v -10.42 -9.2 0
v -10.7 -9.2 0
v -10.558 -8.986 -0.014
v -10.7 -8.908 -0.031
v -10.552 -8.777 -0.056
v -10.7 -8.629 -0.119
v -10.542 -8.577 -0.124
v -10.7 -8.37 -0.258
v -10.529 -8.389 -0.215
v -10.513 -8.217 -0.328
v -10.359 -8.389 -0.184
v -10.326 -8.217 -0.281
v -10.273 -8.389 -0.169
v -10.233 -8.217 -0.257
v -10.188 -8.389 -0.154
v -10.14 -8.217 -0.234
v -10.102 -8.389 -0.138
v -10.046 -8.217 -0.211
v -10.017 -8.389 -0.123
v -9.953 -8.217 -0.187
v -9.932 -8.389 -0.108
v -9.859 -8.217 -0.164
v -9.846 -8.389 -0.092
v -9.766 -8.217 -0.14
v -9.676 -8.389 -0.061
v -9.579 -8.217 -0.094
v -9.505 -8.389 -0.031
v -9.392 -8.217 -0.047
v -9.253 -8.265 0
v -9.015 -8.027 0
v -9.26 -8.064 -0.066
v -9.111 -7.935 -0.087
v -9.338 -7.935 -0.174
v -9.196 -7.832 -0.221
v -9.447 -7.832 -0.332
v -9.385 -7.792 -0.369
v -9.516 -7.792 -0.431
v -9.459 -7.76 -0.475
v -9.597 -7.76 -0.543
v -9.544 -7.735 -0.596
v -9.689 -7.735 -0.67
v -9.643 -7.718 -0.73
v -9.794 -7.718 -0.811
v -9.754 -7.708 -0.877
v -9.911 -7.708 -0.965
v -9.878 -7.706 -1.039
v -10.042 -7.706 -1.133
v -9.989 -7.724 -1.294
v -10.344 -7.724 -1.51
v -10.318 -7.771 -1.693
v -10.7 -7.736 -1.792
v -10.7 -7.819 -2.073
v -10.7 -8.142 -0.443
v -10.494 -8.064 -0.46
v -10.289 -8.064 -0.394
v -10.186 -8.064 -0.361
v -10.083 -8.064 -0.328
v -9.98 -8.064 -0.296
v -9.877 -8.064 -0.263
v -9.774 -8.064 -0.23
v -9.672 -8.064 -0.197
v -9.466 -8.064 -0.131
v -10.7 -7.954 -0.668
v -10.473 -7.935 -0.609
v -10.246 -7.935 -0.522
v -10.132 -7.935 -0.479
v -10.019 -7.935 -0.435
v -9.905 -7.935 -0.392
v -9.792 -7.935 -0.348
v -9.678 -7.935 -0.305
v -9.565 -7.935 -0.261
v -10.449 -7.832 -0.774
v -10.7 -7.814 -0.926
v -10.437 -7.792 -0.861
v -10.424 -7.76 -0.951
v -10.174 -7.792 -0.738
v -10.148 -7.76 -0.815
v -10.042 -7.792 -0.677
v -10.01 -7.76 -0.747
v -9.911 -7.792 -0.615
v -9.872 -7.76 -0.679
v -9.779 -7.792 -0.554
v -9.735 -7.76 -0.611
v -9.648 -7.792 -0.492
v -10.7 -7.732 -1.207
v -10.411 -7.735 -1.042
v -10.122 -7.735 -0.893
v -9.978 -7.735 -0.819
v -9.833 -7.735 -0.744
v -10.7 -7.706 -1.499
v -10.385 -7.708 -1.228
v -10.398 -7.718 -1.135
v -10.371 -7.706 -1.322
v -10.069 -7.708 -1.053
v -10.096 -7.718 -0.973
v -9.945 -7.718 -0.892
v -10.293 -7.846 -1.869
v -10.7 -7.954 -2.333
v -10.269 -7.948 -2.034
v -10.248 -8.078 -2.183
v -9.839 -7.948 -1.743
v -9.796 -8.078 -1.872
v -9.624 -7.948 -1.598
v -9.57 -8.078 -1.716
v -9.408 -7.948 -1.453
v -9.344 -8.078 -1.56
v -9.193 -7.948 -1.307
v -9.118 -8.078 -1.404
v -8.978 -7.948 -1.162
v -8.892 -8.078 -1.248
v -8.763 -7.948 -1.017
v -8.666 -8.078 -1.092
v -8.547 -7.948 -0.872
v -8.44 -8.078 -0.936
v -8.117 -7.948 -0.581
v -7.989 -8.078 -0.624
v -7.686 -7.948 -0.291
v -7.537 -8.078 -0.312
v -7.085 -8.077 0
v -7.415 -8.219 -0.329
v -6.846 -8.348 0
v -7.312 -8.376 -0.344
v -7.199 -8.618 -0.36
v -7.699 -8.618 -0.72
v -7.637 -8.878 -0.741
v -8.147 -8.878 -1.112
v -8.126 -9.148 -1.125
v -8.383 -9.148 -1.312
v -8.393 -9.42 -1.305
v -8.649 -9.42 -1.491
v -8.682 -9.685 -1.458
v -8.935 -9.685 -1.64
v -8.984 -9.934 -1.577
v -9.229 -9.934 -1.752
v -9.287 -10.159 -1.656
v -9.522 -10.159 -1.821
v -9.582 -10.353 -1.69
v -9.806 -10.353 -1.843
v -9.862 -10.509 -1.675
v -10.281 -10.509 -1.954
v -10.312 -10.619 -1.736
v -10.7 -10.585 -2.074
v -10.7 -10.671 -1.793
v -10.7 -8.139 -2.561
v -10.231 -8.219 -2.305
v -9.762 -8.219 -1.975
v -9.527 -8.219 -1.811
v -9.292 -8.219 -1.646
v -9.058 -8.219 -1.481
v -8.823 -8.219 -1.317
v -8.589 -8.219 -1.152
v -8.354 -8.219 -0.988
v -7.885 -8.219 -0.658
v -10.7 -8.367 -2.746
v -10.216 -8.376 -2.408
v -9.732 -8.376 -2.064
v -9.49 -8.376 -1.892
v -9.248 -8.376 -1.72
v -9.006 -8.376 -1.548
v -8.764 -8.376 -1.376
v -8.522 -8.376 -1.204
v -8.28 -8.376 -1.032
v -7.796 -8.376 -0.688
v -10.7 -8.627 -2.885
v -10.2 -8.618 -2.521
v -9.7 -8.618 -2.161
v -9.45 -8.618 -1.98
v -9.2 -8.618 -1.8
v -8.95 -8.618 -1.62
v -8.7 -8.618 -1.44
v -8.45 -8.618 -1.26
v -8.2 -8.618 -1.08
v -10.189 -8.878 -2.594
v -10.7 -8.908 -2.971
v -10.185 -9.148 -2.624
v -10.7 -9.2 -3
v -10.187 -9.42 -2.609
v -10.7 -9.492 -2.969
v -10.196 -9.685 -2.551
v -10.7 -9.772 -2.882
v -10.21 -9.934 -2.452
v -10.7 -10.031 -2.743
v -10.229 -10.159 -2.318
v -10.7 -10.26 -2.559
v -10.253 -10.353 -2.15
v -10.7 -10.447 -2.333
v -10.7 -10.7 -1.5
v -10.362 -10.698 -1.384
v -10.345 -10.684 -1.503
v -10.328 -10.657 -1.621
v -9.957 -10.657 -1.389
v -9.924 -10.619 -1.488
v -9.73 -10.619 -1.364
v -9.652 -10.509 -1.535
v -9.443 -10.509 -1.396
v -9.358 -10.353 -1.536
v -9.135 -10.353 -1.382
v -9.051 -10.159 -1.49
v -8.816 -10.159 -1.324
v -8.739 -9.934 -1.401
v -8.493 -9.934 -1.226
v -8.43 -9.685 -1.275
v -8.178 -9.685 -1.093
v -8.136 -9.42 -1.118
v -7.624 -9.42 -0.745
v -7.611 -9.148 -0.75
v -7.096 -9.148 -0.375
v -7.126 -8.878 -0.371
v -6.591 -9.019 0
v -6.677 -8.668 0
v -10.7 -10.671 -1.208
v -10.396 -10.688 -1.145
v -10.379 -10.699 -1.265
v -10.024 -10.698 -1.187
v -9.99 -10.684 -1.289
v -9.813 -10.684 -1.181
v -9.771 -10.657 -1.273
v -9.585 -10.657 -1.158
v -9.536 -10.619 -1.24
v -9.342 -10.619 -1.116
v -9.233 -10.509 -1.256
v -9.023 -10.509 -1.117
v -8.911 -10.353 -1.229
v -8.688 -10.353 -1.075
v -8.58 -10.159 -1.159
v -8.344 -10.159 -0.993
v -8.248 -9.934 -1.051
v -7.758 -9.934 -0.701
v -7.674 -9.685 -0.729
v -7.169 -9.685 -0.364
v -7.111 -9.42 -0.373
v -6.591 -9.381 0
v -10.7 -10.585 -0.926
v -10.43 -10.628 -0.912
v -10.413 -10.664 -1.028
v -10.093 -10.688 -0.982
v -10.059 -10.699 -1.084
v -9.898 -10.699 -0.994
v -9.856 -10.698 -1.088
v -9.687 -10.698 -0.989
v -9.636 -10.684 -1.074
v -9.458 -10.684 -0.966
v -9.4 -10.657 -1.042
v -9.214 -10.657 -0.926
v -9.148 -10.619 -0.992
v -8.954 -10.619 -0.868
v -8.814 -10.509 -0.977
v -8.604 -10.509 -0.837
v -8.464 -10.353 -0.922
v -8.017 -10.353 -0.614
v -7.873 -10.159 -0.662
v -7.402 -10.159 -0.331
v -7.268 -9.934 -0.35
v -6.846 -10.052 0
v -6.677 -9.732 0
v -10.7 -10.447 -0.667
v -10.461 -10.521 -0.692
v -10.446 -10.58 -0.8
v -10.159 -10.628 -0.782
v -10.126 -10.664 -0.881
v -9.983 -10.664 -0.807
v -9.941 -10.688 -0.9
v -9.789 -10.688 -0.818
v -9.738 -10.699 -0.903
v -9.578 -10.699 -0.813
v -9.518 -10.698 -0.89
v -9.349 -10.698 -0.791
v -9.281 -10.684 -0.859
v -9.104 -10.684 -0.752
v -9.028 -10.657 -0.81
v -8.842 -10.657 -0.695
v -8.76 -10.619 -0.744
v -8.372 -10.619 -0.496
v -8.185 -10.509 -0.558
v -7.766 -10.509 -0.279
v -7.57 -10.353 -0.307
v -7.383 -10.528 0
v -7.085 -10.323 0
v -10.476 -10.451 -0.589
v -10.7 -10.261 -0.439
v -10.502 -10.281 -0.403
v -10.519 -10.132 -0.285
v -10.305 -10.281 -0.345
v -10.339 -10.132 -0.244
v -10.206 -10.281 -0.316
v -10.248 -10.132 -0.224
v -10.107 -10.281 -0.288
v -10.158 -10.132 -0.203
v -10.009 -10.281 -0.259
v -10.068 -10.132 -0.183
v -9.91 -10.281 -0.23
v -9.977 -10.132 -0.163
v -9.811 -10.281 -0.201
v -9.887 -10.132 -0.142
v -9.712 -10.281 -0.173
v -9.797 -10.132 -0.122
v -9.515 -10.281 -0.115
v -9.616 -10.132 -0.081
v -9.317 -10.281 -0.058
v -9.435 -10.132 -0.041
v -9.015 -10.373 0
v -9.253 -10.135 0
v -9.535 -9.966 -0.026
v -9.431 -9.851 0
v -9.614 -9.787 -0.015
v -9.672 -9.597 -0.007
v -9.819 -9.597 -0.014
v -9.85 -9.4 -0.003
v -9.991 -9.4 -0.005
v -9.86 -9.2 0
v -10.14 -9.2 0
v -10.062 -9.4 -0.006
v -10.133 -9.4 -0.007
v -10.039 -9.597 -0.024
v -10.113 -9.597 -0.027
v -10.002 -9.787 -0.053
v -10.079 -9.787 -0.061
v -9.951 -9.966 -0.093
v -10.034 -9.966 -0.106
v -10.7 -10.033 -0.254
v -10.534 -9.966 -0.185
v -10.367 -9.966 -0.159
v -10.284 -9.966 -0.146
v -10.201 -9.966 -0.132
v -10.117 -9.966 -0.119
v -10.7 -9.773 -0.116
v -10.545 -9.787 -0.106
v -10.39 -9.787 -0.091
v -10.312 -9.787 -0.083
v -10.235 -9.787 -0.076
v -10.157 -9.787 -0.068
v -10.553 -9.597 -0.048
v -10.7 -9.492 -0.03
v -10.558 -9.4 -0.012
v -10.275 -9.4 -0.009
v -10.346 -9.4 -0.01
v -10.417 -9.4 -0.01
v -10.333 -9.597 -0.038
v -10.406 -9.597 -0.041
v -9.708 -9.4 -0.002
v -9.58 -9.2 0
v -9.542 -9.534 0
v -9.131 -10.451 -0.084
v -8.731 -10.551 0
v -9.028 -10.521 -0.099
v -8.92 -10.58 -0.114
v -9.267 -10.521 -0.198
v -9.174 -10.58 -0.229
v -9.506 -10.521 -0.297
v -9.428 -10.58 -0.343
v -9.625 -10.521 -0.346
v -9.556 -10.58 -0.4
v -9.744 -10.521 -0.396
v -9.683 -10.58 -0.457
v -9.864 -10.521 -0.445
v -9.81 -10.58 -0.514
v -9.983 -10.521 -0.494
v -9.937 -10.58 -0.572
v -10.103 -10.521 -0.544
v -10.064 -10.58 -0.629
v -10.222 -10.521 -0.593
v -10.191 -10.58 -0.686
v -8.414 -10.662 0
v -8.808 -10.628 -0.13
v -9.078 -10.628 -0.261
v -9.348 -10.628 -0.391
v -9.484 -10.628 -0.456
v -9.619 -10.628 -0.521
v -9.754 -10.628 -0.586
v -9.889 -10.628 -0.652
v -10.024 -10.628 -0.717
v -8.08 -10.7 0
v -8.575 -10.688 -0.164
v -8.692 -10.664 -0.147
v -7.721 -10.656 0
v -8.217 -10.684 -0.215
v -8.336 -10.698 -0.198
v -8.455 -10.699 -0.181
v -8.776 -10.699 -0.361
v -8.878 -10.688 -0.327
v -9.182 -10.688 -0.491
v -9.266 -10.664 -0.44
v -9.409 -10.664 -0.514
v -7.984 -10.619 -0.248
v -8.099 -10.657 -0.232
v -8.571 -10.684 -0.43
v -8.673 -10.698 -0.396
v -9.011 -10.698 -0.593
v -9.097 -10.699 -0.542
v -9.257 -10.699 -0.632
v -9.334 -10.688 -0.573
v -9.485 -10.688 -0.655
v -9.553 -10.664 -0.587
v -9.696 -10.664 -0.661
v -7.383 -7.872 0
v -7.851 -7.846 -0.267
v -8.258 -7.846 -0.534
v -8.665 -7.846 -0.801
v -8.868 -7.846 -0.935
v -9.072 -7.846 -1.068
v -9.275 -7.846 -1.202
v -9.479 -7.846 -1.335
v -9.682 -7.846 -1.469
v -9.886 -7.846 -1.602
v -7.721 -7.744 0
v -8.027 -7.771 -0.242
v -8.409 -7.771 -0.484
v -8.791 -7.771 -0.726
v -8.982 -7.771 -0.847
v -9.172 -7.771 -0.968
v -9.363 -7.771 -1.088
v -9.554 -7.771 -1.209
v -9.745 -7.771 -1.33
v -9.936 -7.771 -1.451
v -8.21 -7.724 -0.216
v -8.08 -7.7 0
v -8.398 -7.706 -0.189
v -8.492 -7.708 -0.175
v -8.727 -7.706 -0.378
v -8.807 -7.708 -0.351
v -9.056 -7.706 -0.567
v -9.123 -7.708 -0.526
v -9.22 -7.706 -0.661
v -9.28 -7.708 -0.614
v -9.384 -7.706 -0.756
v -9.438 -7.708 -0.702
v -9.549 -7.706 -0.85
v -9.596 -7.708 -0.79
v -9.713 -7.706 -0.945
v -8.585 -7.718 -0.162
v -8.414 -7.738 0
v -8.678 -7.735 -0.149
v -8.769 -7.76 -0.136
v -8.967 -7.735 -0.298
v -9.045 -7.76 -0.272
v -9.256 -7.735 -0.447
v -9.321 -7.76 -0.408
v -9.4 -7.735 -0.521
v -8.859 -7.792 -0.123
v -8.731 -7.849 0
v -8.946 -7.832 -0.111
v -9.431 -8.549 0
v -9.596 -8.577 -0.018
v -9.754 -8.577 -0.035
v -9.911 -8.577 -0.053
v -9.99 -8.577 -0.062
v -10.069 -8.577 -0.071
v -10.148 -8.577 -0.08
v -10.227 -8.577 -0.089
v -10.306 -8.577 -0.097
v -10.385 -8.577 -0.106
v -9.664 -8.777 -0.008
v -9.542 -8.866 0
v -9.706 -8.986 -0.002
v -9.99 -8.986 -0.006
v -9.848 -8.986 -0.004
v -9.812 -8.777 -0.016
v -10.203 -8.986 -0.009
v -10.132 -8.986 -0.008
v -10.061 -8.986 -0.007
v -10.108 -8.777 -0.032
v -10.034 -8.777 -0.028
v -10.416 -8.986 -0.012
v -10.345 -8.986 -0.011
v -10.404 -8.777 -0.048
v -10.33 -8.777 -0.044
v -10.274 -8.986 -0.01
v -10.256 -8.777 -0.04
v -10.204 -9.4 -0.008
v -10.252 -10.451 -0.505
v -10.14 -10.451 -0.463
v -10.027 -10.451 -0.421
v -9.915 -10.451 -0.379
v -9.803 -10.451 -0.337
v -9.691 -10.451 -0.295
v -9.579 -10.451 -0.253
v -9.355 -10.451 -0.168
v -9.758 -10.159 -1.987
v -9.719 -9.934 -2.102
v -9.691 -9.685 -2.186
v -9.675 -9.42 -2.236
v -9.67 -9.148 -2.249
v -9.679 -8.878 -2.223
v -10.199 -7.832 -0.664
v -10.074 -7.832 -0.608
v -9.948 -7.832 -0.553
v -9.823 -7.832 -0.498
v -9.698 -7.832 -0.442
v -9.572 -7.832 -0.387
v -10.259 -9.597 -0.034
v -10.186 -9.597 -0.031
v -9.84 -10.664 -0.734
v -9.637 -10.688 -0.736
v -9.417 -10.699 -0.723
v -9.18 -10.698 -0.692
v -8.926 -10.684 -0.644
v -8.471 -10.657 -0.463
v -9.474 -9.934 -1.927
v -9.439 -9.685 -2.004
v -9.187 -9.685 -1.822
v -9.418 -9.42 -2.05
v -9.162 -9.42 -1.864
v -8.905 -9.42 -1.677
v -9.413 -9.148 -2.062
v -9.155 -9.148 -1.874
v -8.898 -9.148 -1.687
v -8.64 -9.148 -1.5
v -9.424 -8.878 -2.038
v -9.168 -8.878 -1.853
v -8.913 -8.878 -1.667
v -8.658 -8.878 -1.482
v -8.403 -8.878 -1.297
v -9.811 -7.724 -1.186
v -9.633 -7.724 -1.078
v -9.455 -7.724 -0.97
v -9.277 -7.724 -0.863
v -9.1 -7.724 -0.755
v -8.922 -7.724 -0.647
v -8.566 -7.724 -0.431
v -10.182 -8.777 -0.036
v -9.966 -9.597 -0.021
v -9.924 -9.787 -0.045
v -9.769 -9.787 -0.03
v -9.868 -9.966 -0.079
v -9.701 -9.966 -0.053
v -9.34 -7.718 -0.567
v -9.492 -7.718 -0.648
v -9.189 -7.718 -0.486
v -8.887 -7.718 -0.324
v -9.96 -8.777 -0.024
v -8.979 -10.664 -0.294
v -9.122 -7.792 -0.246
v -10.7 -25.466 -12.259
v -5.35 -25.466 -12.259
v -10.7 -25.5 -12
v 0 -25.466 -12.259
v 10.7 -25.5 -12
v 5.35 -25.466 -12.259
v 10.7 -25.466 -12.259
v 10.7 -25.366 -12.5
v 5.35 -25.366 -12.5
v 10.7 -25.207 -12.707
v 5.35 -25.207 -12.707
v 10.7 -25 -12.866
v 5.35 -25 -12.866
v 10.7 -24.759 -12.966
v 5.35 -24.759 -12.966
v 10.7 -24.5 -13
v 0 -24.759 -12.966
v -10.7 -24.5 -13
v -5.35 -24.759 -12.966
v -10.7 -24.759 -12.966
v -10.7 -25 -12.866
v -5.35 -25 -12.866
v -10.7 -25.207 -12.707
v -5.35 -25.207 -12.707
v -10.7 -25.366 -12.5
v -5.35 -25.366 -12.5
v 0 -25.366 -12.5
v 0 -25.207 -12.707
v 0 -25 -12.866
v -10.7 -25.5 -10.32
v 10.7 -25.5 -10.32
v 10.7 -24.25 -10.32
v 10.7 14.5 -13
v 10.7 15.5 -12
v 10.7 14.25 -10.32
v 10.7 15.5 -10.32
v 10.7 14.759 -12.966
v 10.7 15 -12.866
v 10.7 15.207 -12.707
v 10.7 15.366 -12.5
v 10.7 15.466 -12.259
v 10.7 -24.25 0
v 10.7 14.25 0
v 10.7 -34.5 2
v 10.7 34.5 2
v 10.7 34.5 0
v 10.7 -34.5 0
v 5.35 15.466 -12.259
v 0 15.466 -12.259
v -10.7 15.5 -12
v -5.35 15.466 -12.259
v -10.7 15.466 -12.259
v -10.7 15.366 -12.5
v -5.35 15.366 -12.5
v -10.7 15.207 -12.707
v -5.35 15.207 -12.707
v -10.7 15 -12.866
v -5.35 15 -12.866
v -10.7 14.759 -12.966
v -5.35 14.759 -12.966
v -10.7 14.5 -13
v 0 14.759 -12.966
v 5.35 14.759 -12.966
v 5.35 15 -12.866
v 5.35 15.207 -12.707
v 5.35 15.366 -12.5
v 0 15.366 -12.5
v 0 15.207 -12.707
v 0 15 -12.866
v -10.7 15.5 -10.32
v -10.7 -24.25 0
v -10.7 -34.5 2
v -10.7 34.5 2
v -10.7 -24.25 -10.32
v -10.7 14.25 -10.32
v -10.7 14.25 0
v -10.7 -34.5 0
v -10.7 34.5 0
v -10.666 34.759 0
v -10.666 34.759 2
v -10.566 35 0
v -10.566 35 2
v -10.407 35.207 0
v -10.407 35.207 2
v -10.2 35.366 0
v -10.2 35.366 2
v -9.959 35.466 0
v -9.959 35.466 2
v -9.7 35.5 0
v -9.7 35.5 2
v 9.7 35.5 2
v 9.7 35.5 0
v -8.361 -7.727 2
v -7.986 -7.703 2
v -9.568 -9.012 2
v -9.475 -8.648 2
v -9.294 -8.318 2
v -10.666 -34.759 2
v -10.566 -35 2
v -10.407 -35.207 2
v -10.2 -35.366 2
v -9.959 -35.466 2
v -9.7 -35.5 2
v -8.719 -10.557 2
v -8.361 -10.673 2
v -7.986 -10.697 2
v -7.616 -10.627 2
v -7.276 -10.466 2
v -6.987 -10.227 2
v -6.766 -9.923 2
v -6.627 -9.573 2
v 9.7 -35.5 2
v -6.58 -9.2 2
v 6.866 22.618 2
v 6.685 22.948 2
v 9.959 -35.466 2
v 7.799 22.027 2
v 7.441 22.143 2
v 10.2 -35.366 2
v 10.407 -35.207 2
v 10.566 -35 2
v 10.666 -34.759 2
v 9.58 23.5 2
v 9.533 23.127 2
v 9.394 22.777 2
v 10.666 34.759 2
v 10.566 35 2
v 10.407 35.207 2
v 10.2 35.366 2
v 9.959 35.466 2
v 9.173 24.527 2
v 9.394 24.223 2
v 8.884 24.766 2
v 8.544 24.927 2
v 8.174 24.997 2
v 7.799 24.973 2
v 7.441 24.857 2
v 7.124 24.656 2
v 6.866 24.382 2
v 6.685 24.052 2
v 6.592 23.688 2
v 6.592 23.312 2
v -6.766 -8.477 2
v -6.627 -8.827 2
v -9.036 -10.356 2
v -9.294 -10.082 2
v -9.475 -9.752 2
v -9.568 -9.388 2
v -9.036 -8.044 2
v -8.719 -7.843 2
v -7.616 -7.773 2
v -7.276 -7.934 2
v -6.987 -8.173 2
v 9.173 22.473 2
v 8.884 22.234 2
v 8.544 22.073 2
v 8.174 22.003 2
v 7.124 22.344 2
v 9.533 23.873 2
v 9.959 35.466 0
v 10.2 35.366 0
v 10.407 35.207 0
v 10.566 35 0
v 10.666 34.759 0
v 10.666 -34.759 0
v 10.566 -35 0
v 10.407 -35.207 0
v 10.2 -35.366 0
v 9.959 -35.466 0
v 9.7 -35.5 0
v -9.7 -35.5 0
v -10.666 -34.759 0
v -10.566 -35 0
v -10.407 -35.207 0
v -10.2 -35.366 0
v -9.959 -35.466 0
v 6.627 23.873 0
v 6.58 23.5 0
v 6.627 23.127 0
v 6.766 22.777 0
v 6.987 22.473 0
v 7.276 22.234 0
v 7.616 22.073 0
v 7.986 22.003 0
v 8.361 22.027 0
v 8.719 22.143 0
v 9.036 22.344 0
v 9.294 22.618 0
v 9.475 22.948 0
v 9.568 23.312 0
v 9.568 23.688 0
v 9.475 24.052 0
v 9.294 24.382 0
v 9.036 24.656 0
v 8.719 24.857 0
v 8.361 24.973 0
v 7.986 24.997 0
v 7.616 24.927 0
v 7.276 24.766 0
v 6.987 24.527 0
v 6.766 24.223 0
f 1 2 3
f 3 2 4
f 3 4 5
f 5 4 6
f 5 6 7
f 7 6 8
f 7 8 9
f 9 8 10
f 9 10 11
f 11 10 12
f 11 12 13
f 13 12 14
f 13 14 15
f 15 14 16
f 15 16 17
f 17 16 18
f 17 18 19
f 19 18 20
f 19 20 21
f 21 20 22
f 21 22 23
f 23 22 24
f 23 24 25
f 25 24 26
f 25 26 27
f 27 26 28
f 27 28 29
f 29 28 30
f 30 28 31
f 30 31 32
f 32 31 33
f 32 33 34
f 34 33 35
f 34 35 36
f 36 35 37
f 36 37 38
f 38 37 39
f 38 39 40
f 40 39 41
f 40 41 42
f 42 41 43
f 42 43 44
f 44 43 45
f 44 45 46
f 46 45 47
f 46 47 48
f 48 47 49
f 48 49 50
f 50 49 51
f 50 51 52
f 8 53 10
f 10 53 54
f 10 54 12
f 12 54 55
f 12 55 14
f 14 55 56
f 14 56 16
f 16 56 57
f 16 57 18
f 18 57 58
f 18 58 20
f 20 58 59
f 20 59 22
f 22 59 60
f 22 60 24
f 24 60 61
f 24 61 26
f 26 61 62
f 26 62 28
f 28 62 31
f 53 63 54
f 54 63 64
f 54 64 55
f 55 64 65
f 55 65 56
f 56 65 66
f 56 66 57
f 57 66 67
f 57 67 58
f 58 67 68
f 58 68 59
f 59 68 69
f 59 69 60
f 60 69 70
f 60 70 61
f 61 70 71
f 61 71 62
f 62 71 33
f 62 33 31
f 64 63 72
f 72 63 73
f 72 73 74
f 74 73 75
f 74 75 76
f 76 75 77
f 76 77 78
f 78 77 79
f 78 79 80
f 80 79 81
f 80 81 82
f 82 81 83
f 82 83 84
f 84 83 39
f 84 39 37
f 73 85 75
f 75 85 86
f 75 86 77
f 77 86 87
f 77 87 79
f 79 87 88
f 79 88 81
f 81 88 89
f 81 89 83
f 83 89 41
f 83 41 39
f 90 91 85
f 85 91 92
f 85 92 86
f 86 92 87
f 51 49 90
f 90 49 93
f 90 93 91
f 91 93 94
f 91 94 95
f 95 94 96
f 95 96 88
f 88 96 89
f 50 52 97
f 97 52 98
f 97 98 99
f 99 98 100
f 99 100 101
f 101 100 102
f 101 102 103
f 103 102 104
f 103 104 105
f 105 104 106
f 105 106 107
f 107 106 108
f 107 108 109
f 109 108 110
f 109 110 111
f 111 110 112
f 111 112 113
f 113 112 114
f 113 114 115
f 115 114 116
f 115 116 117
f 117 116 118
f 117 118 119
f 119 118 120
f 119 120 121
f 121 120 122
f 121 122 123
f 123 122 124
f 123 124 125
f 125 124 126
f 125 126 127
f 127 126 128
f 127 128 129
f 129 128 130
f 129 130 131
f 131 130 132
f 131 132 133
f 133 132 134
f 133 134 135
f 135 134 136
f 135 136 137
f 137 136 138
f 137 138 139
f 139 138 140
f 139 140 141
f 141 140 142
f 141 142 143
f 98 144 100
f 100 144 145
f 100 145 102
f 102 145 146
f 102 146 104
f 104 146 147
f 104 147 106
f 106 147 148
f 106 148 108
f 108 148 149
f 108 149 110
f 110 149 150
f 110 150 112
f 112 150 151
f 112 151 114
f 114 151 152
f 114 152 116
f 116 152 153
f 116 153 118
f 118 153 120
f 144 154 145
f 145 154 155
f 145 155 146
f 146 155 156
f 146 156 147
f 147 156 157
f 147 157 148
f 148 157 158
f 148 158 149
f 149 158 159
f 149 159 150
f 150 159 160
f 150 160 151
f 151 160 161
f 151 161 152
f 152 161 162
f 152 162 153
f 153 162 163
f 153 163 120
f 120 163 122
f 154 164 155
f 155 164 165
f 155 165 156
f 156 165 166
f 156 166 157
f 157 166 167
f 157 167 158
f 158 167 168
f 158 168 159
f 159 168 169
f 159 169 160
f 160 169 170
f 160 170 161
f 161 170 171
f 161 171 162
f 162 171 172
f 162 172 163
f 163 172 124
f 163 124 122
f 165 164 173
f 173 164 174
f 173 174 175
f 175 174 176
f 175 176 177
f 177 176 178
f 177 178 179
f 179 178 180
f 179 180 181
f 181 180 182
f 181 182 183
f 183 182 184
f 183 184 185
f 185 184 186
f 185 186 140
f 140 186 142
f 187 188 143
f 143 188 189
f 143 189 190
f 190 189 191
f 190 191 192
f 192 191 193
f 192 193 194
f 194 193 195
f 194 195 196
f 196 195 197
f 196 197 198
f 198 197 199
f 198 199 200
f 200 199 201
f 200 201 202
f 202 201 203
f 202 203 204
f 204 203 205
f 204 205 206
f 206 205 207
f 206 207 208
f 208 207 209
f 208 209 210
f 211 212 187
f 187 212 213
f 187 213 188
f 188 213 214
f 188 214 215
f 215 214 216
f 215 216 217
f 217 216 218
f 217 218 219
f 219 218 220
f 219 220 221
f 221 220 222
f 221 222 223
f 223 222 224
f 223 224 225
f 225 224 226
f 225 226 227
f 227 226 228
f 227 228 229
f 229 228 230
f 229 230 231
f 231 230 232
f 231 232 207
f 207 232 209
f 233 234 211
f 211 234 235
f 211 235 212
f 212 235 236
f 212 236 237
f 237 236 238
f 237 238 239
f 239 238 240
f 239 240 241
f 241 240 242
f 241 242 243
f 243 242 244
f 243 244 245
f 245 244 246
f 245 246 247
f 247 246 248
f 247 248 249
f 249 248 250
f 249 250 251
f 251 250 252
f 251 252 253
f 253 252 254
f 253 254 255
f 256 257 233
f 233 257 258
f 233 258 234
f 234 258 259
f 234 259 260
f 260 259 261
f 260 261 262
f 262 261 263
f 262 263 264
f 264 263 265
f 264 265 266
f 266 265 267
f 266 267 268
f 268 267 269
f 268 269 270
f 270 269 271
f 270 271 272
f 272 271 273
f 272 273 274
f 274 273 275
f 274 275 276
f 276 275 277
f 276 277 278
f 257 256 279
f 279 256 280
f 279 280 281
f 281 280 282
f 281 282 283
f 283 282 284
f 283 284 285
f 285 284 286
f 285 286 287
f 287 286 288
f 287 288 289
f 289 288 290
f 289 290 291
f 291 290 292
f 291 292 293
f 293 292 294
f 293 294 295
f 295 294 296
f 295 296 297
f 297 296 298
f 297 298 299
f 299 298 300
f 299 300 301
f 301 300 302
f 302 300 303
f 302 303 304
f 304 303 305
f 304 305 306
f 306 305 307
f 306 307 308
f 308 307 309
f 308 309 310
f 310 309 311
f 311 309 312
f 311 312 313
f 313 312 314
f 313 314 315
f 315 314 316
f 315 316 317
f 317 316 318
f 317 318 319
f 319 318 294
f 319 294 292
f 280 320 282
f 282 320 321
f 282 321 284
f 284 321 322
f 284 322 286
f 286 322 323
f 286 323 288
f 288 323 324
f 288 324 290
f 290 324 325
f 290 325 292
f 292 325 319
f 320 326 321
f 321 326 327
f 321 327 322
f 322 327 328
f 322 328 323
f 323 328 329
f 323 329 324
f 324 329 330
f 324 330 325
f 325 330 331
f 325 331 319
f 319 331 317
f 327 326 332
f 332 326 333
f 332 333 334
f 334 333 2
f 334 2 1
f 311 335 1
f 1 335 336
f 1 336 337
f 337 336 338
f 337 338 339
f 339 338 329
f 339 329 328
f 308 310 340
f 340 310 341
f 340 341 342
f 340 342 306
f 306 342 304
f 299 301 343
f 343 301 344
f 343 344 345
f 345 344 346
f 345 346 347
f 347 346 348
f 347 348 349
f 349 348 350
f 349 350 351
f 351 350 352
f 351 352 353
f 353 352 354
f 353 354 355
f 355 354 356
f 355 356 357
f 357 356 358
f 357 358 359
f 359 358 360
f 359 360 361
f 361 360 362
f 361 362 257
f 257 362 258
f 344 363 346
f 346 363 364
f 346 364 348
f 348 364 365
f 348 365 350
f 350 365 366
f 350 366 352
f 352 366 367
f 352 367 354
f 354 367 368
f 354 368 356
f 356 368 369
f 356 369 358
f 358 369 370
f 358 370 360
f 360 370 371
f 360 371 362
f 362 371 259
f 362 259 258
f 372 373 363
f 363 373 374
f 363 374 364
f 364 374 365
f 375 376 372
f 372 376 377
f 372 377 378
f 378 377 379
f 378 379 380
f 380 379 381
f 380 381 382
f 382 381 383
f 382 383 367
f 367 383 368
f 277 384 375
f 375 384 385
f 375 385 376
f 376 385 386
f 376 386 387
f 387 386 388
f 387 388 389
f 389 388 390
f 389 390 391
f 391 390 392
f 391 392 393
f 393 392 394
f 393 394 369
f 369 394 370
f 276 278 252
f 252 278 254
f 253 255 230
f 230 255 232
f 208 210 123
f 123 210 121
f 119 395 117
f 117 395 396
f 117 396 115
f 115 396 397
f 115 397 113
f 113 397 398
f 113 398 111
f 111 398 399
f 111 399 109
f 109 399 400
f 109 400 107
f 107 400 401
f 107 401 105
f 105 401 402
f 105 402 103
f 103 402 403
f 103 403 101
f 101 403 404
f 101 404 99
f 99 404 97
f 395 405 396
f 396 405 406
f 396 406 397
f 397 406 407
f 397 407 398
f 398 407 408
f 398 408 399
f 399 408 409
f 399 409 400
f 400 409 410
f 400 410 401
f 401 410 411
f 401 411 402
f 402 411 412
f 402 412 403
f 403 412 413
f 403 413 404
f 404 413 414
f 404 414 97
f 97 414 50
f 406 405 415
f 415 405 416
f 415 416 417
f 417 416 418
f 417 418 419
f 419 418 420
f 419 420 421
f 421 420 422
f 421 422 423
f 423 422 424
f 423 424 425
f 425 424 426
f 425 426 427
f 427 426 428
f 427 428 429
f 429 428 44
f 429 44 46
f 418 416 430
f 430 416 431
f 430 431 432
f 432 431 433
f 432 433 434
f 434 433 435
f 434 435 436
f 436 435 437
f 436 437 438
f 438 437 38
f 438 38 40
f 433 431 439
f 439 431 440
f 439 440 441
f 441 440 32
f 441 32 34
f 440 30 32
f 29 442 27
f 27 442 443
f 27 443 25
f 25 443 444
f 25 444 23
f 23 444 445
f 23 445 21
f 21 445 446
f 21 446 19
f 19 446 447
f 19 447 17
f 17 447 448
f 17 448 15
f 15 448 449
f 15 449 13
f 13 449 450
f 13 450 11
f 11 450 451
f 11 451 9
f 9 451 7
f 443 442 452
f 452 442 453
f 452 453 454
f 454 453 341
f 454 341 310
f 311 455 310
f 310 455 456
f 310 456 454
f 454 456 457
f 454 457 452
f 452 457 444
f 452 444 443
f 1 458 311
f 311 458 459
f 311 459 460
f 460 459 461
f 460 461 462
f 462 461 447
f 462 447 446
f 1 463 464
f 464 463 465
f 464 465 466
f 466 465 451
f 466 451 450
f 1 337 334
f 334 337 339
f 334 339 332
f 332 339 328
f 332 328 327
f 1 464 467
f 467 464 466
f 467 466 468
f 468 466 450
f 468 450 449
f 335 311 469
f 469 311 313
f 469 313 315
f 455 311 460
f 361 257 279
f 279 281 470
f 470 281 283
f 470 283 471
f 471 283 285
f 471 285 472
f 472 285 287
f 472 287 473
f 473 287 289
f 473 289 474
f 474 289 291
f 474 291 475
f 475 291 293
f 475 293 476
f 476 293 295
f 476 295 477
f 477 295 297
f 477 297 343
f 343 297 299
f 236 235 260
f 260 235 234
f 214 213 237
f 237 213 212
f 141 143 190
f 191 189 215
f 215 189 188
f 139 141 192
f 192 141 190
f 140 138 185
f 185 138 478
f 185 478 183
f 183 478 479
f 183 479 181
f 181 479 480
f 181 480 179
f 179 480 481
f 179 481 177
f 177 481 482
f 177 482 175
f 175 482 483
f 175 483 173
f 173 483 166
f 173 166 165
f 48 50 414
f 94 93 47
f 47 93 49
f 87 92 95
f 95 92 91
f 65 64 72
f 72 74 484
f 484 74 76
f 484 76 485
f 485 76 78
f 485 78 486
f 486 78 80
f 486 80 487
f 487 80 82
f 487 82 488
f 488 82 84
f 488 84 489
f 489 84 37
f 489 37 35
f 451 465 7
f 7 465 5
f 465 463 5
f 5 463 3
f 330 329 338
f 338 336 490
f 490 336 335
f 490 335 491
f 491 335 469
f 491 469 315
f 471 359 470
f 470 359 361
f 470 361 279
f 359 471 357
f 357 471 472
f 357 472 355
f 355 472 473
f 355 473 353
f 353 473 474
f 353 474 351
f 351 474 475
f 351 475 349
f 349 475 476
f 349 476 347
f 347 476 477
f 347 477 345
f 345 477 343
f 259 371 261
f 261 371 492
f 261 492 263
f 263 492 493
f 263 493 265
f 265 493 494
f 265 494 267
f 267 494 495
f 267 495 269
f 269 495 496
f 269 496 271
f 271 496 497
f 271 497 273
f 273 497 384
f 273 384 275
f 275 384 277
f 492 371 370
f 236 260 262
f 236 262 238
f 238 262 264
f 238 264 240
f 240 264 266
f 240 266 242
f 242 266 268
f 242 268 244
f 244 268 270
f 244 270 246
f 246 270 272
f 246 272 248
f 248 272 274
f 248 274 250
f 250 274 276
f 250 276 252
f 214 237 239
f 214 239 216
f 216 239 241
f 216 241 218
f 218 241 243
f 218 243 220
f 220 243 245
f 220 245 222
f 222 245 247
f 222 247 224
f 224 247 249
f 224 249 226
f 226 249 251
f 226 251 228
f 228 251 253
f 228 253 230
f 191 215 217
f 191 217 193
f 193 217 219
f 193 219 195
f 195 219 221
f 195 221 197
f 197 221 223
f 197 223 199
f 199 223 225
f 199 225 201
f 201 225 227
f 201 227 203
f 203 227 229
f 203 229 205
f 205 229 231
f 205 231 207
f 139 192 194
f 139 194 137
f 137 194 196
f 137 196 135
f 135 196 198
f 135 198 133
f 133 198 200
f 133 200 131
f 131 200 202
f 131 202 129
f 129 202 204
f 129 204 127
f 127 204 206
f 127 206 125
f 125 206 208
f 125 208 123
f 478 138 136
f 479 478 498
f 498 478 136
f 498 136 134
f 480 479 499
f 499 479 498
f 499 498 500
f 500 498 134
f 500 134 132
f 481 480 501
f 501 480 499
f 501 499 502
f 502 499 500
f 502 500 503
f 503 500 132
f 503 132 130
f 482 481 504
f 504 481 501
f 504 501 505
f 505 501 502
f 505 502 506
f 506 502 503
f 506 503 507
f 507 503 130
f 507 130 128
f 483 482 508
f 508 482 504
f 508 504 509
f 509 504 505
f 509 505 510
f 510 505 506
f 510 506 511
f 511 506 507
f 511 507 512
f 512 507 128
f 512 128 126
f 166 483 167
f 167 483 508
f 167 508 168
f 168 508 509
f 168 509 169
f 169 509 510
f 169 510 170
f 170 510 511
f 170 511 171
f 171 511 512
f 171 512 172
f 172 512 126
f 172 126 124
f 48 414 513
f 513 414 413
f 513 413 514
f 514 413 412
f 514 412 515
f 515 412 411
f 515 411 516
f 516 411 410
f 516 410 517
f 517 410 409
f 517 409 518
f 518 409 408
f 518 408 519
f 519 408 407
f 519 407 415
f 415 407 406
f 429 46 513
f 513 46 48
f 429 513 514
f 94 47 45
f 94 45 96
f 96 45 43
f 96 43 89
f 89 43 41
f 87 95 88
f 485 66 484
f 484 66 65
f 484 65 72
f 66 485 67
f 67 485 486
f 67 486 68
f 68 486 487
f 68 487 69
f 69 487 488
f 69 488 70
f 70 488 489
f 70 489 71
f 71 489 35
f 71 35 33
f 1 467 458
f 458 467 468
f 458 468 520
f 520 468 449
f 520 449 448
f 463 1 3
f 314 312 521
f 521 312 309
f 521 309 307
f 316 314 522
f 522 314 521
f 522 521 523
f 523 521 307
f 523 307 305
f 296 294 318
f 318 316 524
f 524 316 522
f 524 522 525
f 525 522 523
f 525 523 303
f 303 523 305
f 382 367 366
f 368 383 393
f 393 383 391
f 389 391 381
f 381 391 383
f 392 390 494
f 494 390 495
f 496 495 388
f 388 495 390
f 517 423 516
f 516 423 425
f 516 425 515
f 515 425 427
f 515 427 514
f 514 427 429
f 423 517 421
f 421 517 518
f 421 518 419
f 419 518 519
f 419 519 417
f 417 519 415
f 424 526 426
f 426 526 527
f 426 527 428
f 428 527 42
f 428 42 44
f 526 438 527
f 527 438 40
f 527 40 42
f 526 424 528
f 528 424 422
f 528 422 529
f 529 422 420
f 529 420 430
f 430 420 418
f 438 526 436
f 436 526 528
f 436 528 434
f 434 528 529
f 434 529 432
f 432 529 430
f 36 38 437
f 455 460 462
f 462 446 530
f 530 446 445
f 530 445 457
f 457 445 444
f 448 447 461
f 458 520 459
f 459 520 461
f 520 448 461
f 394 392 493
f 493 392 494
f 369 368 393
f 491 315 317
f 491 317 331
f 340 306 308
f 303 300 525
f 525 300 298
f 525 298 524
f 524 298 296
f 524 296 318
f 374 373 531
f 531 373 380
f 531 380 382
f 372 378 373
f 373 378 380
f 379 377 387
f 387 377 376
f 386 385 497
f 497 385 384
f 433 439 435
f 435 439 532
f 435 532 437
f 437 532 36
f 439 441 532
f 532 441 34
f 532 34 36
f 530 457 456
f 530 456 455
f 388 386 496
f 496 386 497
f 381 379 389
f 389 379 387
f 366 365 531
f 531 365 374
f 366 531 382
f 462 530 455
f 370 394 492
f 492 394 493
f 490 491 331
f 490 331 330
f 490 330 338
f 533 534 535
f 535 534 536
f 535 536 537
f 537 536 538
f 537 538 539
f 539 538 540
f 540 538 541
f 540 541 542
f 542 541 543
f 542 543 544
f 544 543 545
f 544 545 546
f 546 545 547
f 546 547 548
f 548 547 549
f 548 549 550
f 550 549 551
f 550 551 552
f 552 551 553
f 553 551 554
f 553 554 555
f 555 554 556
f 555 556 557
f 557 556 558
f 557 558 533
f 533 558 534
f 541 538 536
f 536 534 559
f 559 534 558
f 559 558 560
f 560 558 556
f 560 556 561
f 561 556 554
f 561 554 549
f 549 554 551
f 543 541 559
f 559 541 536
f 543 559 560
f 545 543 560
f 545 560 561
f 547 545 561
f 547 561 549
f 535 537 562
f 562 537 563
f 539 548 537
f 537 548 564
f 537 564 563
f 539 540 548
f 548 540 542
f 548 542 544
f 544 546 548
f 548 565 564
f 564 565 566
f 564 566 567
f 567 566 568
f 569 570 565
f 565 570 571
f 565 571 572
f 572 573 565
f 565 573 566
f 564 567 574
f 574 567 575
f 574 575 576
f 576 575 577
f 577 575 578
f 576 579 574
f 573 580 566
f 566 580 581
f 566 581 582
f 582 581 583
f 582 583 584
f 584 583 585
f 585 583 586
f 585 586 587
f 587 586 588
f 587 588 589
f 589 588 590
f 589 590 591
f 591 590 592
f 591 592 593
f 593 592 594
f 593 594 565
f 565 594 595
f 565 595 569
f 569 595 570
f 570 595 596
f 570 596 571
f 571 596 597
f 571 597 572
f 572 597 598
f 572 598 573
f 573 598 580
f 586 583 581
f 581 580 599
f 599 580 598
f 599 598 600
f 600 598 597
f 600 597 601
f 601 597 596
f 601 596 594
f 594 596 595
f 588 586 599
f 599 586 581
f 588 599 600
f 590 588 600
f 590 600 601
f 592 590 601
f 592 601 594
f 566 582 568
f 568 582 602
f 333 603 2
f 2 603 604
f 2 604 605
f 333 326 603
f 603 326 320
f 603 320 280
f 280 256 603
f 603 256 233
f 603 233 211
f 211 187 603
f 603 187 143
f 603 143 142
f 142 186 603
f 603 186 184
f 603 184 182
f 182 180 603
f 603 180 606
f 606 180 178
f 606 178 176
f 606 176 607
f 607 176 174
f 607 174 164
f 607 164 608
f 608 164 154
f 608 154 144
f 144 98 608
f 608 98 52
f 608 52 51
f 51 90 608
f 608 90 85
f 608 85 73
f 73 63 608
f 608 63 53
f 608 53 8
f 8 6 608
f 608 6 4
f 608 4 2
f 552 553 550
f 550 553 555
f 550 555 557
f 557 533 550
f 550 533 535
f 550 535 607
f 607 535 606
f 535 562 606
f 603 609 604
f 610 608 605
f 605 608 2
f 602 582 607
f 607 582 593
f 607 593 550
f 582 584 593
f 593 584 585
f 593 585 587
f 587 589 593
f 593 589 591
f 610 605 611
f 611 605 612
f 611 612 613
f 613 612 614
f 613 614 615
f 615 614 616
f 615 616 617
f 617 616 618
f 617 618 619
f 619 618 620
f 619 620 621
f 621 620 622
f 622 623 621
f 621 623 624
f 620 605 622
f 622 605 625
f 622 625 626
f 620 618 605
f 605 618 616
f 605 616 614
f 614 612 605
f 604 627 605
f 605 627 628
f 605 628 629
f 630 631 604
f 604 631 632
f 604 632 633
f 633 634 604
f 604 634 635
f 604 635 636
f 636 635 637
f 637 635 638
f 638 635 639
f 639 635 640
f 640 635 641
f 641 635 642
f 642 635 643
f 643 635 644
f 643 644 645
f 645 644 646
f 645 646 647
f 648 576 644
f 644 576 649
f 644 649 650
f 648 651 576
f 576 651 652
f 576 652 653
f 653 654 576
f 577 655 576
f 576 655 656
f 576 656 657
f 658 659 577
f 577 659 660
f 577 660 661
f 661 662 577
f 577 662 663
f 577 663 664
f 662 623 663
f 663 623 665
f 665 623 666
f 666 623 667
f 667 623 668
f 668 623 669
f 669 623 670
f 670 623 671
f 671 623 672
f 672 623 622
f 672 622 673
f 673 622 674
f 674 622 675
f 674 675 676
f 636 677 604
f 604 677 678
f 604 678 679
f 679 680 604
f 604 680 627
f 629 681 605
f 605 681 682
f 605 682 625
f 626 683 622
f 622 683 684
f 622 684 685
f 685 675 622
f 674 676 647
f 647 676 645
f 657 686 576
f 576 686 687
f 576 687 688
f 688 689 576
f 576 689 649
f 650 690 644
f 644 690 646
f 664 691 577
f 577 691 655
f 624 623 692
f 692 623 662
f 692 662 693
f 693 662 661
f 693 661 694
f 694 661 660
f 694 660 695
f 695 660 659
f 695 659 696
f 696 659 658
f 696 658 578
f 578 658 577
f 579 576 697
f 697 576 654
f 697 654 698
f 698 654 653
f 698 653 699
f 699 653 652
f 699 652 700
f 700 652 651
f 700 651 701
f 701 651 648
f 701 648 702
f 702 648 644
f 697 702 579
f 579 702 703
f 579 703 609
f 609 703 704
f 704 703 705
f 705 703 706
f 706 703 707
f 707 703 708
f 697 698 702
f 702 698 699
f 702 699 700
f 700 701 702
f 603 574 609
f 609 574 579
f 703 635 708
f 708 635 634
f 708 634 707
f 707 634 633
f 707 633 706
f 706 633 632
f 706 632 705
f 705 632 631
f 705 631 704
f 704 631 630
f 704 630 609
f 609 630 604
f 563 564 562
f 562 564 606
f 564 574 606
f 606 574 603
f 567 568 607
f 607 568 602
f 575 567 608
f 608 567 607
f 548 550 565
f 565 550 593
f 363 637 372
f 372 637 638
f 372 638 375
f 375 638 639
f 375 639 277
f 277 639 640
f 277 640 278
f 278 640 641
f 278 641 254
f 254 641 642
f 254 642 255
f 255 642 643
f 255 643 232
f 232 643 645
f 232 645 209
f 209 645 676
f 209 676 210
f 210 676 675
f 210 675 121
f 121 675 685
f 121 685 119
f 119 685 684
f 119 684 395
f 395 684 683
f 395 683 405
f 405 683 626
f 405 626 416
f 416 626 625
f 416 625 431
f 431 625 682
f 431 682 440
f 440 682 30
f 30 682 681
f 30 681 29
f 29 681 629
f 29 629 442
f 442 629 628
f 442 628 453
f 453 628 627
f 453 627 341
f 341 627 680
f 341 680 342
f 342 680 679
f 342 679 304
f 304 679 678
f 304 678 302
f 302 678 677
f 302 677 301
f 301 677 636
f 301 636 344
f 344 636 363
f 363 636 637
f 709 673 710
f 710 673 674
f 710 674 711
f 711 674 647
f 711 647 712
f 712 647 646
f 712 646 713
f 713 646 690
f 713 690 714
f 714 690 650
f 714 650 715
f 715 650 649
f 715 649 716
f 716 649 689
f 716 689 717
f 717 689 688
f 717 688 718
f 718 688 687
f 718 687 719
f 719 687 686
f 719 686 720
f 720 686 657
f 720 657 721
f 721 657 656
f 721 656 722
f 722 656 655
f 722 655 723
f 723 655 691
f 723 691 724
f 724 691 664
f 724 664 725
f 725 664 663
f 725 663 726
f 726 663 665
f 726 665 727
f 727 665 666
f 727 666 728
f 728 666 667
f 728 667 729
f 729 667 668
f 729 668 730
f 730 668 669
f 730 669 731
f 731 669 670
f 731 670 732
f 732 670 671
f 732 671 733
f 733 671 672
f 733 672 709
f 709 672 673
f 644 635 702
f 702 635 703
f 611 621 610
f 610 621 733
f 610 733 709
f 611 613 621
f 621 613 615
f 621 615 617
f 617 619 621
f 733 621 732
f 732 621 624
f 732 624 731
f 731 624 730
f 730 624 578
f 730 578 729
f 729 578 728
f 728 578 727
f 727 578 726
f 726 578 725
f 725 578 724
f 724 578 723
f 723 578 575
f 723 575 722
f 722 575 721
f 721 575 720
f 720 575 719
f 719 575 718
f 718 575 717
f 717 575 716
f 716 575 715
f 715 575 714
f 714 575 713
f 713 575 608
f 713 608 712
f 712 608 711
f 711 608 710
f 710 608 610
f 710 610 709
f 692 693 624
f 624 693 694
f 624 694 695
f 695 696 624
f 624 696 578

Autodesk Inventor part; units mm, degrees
ref_plane "YZ Plane" through (0, 0, 0) normal (1, 0, 0) x (0, 1, 0)
ref_plane "XZ Plane" through (0, 0, 0) normal (0, 1, 0) x (-1, 0, 0)
ref_plane "XY Plane" through (0, 0, 0) normal (0, 0, 1) x (1, 0, 0)
sketch "Skizze1" plane through (0, 0, 0) normal (0, 0, 1) x (1, 0, 0)
  line L0 (-10.7, -35.5) -> (10.7, -35.5)
  line L1 (10.7, -35.5) -> (10.7, 35.5)
  line L2 (10.7, 35.5) -> (-10.7, 35.5)
  line L3 (-10.7, 35.5) -> (-10.7, -35.5)
  line L4 (-10.7, -35.5) -> (10.7, 35.5) construction
  line L5 (10.7, -35.5) -> (-10.7, 35.5) construction
  point P0 (0, 0)
  dimension "d0" = 21.4
  dimension "d1" = 71
extrude "Extrusion1" add sketch "Skizze1" along normal blind 2
sketch "Skizze2" plane through (0, 0, 2) normal (0, 0, 1) x (1, 0, 0)
  line L0 (10.7, 35.5) -> (-10.7, 35.5) projected
  line L1 (0, 35.5) -> (0, 32.4568) construction
  line L2 (-3.3034, 0) -> (2.2681, 0) construction
  line L3 (-10.7, 35.5) -> (-10.7, -35.5) construction
  circle A0 centre (8.08, 23.5) radius 1.5
  circle A1 centre (-8.08, -9.2) radius 1.5
  line L4 (9.58, 23.5) -> (10.7, 23.5)
  line L5 (10.7, -35.5) -> (10.7, 35.5) projected
  line L6 (-9.58, -9.2) -> (-10.7, -9.2)
  point P0 (0, 0)
  point P1 (10.14, 23.5)
  point P2 (-10.14, -9.2)
  dimension "d18" = 3
  dimension "d19" = 3
  dimension "d21" = 1.12
  dimension "d22" = 1.12
  dimension "d23" = 32.7
  dimension "d24" = 12
extrude "Extrusion2" cut sketch "Skizze2" against normal blind 4
sketch "Skizze3" plane through (0, 0, 0) normal (0, 0, -1) x (-1, 0, 0)
  line L0 (10.7, 35.5) -> (10.7, -35.5) projected
  line L1 (-10.7, -25.5) -> (10.7, -25.5)
  line L2 (10.7, -25.5) -> (10.7, 15.5)
  line L3 (10.7, 15.5) -> (-10.7, 15.5)
  line L4 (-10.7, 15.5) -> (-10.7, -25.5)
  line L5 (-10.7, -25.5) -> (10.7, 15.5) construction
  line L6 (10.7, -25.5) -> (-10.7, 15.5) construction
  line L7 (10.7, -35.5) -> (-10.7, -35.5) projected
  line L8 (-10.7, -35.5) -> (-10.7, 35.5) projected
  point P0 (0, -5)
  point P1 (10.7, -25.5)
  dimension "d9" = 41
  dimension "d17" = 10
extrude "Extrusion3" add sketch "Skizze3" along normal blind 13 contours L0 L1 L4 L3
sketch "Skizze4" plane through (-10.7, -35.5, 2) normal (-1, 0, 0) x (0, 0, 1)
  line L0 (-2, 10) -> (-15, 10) projected
  line L1 (-12.32, 10) -> (-2, 10)
  line L2 (-2, 10) -> (-2, 11.25)
  line L3 (-2, 11.25) -> (-12.32, 11.25)
  line L4 (-12.32, 11.25) -> (-12.32, 10)
  line L5 (-15, 10) -> (-15, 51) projected
  line L6 (-4.404, 30.5) -> (2.981, 30.5) construction
  line L7 (-2, 51) -> (-15, 51)
  line L8 (-2, 51) -> (-2, 49.75)
  line L9 (-2, 49.75) -> (-12.32, 49.75)
  line L10 (-12.32, 49.75) -> (-12.32, 51)
  line L11 (-2, 10) -> (-12.32, 10)
  point P0 (-2, 35.5)
  point P1 (-12.32, 10.625)
  dimension "d12" = 2.68
  dimension "d13" = 1.25
extrude "Extrusion4" cut sketch "Skizze4" against normal through all
fillet "Rundung1" radius 1 6 edges at (-10.7, -35.5, 1) (10.7, -35.5, 1) (10.7, 35.5, 1) (-10.7, 35.5, 1) (0, 15.5, -13) (0, -25.5, -13)
sketch "Skizze5" plane through (-10.7, -24.25, -10.32) normal (-1, 0, 0) x (0, 0, 1)
  line L0 (12.32, 16.55) -> (12.32, 13.55) projected
  line L1 (10.32, 13.55) -> (10.32, 16.55) projected
  line L2 (10.32, 13.55) -> (10.32, 16.55) projected
  line L3 (12.32, 16.55) -> (12.32, 13.55) projected
  circle A0 centre (8.82, 15.05) radius 1.5
  point P0 (10.32, 24.25)
  point P1 (10.32, 15.05)
  dimension "d25" = 3
loft "Erhebung2" cut profiles "Skizze5" section 2 edges at (-9.58, -9.2, 0)
properties part number "Relais_Platte_3D-Druck"
